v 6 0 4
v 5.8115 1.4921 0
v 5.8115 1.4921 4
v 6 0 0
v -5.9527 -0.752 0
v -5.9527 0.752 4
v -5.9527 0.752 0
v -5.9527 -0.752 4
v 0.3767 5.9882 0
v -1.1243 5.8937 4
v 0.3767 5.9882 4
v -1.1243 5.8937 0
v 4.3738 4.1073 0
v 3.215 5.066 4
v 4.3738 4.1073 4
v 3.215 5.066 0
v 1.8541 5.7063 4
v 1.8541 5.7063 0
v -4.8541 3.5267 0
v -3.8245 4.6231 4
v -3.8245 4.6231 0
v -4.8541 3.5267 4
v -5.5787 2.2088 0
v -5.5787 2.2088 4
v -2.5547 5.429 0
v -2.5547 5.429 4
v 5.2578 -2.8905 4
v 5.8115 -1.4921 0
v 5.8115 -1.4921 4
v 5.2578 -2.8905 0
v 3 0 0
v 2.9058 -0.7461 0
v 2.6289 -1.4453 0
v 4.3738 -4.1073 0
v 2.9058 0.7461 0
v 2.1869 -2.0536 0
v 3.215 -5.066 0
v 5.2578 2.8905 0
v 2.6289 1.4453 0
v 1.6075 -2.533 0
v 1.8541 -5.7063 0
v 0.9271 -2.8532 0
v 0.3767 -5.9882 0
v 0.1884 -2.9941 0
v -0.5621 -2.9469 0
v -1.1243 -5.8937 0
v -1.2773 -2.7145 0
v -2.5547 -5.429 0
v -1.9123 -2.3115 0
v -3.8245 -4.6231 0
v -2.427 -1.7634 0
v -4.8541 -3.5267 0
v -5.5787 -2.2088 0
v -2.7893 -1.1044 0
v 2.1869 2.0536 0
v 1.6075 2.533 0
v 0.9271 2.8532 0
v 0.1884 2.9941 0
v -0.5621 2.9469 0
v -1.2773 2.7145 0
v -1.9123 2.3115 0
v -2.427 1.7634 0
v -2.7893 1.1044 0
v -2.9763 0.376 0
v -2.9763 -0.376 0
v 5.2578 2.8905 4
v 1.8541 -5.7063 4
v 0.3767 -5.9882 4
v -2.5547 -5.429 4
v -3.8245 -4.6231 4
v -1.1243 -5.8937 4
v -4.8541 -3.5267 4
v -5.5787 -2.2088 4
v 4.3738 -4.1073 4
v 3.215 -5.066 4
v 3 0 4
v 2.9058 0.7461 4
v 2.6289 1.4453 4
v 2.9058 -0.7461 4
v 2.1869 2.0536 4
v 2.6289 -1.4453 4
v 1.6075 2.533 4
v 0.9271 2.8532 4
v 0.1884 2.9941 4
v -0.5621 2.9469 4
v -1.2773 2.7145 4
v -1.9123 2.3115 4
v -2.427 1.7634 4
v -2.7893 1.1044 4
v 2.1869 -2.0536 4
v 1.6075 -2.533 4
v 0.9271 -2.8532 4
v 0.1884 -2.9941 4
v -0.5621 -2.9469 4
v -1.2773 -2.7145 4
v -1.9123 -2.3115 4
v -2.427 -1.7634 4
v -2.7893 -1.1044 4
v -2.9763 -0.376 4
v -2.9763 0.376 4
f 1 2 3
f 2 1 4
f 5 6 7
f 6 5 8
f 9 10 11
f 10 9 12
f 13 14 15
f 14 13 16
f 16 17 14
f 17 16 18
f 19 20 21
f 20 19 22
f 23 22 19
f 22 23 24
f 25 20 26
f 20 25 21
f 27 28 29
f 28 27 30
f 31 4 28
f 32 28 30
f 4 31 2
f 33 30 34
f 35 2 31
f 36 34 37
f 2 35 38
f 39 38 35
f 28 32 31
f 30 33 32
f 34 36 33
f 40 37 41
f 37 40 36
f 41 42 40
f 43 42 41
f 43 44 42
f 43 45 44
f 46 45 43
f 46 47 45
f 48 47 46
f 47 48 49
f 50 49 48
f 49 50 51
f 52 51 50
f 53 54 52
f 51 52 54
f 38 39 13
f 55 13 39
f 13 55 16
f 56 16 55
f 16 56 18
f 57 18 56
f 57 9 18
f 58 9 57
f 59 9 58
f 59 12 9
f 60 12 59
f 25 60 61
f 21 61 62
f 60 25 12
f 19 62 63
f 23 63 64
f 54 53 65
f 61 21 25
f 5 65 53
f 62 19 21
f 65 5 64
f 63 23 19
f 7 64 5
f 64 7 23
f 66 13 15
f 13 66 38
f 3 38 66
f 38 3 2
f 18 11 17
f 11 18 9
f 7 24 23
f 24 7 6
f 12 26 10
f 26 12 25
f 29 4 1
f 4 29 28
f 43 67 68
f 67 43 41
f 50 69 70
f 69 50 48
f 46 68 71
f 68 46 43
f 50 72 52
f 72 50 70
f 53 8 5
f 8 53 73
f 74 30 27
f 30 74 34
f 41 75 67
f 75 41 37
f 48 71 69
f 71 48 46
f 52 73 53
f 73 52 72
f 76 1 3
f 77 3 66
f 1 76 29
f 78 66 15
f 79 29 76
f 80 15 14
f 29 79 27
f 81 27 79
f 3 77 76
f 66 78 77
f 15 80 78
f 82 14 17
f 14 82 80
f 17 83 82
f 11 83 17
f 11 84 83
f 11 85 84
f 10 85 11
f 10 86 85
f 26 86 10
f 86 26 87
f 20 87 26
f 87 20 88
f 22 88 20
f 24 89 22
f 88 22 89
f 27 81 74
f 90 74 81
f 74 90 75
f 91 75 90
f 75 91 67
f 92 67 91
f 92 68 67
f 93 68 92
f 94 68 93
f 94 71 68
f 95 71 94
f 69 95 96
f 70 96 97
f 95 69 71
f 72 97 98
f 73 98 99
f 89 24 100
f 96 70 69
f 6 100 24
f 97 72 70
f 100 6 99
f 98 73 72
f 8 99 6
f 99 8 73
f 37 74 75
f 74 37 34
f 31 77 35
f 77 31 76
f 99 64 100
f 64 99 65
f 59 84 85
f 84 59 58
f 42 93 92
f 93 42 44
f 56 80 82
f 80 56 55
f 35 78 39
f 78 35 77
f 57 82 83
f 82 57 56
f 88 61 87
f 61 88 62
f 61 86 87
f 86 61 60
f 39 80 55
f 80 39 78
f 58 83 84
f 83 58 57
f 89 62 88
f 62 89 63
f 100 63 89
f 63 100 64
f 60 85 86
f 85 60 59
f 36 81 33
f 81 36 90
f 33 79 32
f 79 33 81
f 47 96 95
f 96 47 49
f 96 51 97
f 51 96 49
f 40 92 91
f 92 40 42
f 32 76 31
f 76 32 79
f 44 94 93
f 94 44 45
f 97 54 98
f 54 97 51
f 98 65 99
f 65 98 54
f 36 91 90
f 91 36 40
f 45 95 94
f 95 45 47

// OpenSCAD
quality=25;

pin_gap_radius=3;

backing_thickness=2*2;



difference()
{
  cylinder(r=pin_gap_radius*2,h=backing_thickness,$fn=quality);
  cylinder(r=pin_gap_radius,h=backing_thickness,$fn=quality);
        
}
